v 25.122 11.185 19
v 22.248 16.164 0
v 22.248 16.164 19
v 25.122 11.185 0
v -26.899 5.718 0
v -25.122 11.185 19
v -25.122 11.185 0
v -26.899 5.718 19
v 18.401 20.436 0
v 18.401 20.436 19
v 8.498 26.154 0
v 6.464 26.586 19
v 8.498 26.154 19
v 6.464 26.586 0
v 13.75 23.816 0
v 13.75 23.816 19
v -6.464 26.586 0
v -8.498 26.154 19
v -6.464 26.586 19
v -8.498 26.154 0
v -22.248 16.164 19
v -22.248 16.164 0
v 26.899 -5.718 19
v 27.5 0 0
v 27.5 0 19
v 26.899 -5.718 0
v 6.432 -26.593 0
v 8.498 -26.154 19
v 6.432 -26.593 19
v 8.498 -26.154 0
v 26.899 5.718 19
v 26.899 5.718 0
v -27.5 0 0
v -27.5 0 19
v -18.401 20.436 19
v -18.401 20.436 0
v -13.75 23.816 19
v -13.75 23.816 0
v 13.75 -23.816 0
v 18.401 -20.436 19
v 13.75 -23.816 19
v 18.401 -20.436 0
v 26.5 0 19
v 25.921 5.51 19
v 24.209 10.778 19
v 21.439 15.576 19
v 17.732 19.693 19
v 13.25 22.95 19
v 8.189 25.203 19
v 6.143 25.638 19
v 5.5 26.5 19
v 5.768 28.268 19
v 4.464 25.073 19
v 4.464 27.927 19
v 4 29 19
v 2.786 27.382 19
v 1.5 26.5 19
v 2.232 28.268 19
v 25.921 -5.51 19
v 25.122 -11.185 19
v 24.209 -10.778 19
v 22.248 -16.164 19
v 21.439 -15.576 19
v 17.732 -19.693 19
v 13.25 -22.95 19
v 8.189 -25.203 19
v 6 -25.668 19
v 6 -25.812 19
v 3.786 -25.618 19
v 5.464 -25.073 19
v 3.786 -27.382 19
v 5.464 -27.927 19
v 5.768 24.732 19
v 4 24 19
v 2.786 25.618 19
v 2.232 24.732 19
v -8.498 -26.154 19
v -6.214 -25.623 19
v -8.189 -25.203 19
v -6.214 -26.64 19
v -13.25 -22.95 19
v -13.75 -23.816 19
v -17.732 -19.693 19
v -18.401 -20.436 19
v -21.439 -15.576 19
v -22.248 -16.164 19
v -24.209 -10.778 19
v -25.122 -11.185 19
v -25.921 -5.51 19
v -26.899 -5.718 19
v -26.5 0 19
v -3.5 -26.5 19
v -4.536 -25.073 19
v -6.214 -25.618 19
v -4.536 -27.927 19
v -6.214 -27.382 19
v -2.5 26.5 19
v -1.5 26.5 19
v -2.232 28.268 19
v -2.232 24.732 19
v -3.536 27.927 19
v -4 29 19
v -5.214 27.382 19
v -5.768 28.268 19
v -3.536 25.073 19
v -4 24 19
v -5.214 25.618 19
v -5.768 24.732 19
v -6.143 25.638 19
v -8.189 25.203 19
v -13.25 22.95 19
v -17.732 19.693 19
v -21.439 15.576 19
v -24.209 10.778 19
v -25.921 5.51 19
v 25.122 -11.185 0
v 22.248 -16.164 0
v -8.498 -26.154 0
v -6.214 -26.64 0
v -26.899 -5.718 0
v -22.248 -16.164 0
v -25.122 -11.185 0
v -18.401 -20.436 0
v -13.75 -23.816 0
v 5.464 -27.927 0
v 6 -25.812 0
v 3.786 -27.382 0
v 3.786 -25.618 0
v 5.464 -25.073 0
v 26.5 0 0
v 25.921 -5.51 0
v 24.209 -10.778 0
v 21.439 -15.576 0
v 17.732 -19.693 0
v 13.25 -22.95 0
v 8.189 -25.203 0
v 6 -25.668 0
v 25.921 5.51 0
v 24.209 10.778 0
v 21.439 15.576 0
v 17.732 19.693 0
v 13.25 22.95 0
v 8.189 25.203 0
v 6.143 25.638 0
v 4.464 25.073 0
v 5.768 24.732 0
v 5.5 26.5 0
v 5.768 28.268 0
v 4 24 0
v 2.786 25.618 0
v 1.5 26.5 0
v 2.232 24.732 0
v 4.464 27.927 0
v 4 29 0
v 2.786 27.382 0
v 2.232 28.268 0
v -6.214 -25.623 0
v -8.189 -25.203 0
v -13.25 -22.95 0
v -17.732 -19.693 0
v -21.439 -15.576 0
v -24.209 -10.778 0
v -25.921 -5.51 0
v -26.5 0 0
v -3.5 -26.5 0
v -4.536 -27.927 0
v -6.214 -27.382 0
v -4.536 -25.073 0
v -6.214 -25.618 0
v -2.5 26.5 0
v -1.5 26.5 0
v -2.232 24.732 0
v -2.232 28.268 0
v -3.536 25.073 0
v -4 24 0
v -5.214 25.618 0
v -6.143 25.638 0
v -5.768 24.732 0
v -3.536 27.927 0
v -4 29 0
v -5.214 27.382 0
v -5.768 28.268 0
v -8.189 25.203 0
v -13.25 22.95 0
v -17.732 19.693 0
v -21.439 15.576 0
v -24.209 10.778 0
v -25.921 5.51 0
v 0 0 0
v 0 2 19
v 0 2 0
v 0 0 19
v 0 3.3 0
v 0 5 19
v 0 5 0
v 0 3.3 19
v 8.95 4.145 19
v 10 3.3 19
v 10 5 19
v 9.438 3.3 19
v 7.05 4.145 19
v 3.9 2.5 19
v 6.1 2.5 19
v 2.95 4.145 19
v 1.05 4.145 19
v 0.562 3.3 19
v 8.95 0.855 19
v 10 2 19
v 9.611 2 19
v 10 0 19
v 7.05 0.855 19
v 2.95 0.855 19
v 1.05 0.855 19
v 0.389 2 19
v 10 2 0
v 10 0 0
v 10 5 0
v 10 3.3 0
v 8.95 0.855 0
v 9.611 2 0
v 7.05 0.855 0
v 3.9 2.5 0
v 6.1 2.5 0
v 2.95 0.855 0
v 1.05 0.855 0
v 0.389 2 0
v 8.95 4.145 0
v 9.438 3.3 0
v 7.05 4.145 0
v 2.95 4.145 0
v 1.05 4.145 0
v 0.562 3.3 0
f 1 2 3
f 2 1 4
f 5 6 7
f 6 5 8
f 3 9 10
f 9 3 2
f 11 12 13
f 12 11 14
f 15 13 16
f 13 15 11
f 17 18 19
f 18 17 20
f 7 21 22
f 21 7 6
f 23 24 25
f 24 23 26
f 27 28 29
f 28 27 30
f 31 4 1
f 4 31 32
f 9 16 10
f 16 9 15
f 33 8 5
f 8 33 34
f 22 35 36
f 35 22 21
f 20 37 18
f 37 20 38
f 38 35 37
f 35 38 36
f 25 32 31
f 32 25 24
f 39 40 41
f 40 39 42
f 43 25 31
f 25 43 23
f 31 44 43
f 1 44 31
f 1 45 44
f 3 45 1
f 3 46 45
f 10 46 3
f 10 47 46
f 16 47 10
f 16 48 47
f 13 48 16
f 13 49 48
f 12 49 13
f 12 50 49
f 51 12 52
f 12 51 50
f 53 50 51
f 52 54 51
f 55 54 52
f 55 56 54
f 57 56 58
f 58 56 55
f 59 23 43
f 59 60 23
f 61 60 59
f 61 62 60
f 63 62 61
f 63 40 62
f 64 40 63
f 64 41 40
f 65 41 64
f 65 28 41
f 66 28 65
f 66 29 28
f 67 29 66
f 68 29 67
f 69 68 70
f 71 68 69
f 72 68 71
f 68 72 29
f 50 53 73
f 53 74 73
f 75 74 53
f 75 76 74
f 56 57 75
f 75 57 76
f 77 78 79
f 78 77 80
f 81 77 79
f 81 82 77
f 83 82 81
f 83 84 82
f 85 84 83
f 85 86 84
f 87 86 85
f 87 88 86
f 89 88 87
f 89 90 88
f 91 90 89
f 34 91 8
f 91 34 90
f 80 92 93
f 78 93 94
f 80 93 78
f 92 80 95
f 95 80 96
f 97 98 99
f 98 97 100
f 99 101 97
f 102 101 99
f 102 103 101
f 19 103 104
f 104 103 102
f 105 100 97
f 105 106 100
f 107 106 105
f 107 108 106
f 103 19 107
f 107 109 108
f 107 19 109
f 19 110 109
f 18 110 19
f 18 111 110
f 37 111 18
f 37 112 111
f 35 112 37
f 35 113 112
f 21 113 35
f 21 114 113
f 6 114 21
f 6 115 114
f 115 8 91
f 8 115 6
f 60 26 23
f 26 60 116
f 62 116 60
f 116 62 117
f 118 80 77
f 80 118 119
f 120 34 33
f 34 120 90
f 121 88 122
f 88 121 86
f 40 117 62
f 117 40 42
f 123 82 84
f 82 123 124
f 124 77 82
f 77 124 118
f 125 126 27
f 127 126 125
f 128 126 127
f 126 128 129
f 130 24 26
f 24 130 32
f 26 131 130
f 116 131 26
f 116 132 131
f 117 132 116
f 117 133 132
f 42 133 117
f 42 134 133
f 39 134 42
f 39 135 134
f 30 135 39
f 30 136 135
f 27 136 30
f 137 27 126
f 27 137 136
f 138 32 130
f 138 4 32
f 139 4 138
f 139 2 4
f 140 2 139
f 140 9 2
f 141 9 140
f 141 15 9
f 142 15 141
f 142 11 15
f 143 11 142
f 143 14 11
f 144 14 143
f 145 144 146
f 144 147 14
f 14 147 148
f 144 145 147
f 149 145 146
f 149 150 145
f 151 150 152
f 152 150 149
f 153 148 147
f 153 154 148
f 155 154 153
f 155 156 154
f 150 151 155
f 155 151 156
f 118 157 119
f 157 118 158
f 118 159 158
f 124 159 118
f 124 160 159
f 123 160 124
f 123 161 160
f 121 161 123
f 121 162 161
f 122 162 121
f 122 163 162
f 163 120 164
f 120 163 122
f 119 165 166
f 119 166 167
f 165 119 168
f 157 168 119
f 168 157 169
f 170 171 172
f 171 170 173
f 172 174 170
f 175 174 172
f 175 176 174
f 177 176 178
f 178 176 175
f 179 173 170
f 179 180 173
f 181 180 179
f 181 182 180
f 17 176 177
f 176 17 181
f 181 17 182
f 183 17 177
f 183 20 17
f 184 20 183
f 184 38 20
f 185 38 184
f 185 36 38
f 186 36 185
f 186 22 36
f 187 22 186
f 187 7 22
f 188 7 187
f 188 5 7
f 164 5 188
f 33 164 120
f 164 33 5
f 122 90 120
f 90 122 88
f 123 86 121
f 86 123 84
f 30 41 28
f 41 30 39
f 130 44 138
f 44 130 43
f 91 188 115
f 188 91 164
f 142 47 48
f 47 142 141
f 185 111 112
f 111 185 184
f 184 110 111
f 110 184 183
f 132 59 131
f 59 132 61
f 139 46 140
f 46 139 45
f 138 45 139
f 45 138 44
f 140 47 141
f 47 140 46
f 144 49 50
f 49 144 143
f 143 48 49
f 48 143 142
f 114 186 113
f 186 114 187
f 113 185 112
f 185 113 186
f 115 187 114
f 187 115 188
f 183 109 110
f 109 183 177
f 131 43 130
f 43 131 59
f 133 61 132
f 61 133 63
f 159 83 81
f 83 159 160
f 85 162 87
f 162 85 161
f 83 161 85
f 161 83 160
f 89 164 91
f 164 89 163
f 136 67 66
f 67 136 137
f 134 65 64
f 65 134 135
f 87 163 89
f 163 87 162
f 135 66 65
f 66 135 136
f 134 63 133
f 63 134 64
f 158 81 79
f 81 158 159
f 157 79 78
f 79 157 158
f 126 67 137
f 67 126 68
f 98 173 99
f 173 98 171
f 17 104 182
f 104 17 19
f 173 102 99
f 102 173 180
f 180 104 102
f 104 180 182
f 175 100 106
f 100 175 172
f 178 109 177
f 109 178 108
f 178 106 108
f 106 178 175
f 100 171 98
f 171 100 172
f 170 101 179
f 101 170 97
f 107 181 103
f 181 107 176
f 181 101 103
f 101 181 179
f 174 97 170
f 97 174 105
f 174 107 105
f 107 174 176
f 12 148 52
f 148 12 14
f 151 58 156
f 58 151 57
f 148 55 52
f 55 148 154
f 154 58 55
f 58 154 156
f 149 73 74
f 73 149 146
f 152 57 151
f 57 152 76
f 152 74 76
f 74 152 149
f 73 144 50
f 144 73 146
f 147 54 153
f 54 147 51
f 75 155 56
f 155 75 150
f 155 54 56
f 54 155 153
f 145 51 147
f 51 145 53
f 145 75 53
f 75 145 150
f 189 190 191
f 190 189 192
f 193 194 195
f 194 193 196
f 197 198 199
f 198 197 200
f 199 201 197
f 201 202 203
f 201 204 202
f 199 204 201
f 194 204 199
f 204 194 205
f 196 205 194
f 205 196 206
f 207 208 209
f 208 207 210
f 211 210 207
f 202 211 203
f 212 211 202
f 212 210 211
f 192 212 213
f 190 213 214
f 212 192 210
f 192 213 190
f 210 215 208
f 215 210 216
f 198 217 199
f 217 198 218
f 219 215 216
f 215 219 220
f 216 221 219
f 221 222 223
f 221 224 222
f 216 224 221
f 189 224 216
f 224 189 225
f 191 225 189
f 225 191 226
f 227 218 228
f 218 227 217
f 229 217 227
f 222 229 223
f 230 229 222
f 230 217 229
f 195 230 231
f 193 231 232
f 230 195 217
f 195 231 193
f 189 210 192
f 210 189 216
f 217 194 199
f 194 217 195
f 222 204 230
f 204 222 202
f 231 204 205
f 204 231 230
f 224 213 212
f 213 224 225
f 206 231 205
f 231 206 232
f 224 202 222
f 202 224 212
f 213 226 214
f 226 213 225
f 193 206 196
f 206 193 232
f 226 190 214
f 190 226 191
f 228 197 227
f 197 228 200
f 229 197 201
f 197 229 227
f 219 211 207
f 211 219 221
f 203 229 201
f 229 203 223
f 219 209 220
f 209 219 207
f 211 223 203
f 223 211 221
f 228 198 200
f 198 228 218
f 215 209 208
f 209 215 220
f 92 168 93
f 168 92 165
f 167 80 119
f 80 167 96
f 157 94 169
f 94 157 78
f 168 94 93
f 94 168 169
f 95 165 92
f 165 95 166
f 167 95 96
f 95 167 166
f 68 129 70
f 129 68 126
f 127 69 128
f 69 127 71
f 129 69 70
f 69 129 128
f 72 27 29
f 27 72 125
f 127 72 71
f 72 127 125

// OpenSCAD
diameter = 55;
height = 19;

difference() {
    cylinder(height, r=diameter/2);
    cylinder(height, r=diameter/2 -1);
    translate([-6,-diameter,0]) cube([12, 2*diameter,height]);
}

translate([-4,diameter/2-1,0])
difference() {
    cylinder(height,  r=2.5);
    cylinder(height, r=1.5);
}
translate([-5, -diameter/2+1,0]) cylinder(height,  r=1.5);

translate([4,diameter/2-1,0])
difference() {
    cylinder(height,  r=2.5);
    cylinder(height, r=1.5);
}
translate([5, -diameter/2+1,0]) cylinder(height,  r=1.5);

difference() {
    cube([10, 5, height]);
    translate([2, 2.5, 0]) cylinder(height,  r=1.9);
    translate([0, 2, 0]) cube([1, 1.3, height]);
    translate([8, 2.5, 0]) cylinder(height,  r=1.9);    
    translate([9, 2, 0]) cube([1, 1.3, height]);
}
